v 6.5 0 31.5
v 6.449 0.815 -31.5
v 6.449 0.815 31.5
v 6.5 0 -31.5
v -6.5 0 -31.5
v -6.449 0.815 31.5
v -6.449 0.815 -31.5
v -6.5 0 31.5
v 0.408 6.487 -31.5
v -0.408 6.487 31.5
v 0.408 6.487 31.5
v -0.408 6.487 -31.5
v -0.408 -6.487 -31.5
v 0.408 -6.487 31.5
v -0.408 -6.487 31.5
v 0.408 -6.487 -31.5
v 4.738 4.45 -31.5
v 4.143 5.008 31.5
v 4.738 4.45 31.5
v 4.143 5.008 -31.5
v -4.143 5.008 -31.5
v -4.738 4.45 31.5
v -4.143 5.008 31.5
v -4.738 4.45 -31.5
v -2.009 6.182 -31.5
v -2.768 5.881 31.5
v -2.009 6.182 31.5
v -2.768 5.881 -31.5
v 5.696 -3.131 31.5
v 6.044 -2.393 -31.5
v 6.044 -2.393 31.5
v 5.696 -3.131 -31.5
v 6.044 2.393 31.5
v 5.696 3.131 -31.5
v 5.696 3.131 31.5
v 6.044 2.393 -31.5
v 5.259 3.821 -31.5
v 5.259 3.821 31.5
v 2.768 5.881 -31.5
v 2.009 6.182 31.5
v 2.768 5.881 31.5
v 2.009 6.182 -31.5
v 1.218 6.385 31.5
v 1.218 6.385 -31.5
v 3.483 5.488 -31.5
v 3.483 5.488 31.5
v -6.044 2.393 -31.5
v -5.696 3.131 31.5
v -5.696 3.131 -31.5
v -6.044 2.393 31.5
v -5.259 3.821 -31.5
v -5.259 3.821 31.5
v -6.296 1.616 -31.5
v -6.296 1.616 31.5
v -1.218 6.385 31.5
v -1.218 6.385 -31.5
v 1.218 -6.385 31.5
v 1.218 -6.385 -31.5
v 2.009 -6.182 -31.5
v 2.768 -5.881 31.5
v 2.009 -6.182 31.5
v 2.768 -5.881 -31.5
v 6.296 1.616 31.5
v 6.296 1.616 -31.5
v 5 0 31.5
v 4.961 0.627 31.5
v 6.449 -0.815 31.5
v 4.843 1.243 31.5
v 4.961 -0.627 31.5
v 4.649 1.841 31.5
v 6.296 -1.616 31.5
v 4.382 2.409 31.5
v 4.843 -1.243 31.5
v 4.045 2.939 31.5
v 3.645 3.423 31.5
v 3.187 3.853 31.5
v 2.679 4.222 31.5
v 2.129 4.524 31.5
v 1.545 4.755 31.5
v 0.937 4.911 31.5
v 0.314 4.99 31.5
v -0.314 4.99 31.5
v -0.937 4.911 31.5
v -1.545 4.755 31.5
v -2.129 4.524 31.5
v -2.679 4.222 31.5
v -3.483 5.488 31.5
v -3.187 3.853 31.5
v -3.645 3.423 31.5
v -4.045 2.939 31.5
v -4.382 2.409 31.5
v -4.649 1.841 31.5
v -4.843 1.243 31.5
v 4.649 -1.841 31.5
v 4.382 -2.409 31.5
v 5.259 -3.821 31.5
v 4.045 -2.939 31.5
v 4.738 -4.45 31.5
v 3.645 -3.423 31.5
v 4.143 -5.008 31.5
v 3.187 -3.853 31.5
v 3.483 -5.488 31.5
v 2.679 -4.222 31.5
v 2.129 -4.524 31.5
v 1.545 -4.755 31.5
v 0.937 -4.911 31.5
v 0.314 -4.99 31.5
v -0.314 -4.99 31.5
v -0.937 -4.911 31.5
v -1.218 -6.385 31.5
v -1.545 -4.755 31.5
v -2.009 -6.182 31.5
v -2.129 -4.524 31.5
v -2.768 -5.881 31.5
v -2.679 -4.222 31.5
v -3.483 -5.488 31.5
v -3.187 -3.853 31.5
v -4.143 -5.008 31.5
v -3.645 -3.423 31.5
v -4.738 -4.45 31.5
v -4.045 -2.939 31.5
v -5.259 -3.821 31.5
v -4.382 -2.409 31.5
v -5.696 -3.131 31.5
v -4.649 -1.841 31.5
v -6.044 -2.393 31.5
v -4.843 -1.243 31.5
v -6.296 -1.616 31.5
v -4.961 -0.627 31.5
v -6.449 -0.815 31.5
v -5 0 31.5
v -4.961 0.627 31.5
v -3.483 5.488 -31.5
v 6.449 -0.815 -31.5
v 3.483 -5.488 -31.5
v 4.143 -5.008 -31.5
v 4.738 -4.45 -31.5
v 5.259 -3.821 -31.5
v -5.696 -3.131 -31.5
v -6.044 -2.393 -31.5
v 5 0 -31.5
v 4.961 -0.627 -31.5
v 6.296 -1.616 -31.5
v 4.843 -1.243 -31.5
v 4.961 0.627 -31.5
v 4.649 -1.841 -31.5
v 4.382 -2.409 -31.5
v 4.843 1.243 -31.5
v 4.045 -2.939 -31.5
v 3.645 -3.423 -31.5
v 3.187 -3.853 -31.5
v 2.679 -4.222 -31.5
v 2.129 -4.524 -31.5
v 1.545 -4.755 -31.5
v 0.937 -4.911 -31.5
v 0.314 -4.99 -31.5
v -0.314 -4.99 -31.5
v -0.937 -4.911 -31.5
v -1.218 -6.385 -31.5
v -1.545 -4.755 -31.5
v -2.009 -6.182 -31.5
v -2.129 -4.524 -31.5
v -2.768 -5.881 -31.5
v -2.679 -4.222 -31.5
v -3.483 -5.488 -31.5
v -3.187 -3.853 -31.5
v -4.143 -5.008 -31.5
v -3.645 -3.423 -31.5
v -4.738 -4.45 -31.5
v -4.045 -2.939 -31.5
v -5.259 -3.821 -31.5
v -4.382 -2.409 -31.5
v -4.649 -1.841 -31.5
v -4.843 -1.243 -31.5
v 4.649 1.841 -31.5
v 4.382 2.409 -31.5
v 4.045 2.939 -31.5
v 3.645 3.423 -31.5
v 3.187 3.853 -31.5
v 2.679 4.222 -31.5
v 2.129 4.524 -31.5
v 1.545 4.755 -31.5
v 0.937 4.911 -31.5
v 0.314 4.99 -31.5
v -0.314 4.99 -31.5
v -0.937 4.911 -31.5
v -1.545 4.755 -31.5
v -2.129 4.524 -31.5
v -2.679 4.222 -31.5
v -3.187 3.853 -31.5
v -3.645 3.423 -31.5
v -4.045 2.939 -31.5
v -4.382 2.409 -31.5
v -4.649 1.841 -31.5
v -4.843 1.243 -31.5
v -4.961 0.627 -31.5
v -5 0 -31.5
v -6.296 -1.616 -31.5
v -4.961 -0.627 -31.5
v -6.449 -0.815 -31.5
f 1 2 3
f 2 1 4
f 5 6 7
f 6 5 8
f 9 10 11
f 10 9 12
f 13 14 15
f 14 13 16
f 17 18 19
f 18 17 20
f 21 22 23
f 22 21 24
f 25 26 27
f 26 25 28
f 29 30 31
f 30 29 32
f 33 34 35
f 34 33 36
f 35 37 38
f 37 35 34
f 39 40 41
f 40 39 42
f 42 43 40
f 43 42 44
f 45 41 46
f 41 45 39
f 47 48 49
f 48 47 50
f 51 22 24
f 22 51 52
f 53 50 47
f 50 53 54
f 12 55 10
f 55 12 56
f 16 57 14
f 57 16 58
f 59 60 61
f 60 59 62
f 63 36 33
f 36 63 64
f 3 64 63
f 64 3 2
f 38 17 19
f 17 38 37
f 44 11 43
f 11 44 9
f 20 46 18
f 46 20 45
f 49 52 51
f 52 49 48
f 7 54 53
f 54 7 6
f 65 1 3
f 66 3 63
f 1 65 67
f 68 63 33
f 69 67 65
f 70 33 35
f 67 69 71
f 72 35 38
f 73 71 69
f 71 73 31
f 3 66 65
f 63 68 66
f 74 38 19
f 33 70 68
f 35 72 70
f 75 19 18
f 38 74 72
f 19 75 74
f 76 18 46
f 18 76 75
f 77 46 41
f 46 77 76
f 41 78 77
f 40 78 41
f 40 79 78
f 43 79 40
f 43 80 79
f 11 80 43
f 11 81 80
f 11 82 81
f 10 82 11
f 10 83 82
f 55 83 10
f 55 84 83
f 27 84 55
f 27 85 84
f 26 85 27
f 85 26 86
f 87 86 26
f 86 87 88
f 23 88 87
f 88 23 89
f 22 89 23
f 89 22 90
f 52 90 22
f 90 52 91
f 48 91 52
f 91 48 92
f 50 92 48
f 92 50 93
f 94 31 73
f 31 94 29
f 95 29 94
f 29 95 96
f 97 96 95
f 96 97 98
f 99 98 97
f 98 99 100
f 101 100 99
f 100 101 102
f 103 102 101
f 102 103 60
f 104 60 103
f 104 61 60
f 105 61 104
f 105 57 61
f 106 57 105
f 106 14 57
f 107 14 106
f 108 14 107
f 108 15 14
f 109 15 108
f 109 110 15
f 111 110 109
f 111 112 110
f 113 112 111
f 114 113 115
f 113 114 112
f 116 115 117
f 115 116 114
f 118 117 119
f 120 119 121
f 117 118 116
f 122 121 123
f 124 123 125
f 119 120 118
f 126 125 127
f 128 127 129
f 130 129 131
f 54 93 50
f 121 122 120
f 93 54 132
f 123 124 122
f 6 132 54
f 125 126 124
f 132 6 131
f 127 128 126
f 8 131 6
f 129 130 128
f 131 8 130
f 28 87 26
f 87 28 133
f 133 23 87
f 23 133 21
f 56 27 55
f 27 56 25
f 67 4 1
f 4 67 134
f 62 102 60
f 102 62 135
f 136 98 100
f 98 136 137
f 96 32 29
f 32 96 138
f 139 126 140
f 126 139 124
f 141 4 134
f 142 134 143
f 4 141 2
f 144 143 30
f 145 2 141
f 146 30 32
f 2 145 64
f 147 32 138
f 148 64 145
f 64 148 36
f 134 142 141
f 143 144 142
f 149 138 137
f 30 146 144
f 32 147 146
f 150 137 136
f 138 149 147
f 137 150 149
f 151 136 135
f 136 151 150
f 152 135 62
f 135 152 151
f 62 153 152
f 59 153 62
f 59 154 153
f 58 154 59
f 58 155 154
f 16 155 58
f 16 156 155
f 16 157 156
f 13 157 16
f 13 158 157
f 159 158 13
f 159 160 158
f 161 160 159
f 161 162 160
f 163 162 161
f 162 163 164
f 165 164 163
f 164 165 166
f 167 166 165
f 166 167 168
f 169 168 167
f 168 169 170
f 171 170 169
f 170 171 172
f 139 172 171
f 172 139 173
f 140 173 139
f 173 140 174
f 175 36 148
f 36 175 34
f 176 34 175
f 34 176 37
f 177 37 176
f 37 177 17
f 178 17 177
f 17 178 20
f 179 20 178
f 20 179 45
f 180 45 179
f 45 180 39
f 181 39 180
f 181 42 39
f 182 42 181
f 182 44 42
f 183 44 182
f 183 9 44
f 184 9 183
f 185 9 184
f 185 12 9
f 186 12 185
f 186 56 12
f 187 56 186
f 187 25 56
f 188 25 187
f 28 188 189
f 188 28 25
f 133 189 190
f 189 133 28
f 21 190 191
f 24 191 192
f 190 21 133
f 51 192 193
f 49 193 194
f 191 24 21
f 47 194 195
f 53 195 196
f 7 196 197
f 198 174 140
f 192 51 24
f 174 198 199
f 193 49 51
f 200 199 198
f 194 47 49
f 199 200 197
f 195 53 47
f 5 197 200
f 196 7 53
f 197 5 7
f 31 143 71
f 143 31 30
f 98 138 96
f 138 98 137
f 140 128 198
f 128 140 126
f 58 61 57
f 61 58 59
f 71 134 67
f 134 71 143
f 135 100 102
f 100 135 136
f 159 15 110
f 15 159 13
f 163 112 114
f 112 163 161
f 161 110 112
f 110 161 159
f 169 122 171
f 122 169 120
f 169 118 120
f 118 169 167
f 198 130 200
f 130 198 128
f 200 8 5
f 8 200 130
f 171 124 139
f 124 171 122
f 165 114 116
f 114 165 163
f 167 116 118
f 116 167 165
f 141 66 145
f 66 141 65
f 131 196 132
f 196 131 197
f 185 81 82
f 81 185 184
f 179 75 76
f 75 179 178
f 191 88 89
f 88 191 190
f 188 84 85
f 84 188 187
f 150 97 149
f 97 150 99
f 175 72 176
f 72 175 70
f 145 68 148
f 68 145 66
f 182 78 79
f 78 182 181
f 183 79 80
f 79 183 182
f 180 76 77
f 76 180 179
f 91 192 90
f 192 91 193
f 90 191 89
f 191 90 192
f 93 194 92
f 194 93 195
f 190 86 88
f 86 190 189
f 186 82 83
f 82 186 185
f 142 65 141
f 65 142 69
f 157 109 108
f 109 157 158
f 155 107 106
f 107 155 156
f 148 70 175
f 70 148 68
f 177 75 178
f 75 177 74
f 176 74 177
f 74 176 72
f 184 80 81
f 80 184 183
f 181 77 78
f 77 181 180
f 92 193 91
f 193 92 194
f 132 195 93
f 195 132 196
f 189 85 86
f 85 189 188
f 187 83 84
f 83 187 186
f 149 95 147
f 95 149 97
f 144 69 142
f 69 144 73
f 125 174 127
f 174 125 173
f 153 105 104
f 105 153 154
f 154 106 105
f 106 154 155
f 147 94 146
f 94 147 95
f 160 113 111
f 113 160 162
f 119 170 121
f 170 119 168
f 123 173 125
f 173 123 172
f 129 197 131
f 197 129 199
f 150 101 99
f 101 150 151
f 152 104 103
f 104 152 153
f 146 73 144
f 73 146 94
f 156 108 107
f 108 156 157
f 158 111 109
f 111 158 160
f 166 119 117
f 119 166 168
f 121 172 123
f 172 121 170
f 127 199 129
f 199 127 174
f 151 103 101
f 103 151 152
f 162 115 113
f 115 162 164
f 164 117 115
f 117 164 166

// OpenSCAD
$fn = 50;


difference() {
	union() {
		translate(v = [0, 0, -31.5000000000]) {
			cylinder(h = 63, r = 6.5000000000);
		}
	}
	union() {
		translate(v = [0, 0, -100.0000000000]) {
			cylinder(h = 200, r = 5);
		}
	}
}
